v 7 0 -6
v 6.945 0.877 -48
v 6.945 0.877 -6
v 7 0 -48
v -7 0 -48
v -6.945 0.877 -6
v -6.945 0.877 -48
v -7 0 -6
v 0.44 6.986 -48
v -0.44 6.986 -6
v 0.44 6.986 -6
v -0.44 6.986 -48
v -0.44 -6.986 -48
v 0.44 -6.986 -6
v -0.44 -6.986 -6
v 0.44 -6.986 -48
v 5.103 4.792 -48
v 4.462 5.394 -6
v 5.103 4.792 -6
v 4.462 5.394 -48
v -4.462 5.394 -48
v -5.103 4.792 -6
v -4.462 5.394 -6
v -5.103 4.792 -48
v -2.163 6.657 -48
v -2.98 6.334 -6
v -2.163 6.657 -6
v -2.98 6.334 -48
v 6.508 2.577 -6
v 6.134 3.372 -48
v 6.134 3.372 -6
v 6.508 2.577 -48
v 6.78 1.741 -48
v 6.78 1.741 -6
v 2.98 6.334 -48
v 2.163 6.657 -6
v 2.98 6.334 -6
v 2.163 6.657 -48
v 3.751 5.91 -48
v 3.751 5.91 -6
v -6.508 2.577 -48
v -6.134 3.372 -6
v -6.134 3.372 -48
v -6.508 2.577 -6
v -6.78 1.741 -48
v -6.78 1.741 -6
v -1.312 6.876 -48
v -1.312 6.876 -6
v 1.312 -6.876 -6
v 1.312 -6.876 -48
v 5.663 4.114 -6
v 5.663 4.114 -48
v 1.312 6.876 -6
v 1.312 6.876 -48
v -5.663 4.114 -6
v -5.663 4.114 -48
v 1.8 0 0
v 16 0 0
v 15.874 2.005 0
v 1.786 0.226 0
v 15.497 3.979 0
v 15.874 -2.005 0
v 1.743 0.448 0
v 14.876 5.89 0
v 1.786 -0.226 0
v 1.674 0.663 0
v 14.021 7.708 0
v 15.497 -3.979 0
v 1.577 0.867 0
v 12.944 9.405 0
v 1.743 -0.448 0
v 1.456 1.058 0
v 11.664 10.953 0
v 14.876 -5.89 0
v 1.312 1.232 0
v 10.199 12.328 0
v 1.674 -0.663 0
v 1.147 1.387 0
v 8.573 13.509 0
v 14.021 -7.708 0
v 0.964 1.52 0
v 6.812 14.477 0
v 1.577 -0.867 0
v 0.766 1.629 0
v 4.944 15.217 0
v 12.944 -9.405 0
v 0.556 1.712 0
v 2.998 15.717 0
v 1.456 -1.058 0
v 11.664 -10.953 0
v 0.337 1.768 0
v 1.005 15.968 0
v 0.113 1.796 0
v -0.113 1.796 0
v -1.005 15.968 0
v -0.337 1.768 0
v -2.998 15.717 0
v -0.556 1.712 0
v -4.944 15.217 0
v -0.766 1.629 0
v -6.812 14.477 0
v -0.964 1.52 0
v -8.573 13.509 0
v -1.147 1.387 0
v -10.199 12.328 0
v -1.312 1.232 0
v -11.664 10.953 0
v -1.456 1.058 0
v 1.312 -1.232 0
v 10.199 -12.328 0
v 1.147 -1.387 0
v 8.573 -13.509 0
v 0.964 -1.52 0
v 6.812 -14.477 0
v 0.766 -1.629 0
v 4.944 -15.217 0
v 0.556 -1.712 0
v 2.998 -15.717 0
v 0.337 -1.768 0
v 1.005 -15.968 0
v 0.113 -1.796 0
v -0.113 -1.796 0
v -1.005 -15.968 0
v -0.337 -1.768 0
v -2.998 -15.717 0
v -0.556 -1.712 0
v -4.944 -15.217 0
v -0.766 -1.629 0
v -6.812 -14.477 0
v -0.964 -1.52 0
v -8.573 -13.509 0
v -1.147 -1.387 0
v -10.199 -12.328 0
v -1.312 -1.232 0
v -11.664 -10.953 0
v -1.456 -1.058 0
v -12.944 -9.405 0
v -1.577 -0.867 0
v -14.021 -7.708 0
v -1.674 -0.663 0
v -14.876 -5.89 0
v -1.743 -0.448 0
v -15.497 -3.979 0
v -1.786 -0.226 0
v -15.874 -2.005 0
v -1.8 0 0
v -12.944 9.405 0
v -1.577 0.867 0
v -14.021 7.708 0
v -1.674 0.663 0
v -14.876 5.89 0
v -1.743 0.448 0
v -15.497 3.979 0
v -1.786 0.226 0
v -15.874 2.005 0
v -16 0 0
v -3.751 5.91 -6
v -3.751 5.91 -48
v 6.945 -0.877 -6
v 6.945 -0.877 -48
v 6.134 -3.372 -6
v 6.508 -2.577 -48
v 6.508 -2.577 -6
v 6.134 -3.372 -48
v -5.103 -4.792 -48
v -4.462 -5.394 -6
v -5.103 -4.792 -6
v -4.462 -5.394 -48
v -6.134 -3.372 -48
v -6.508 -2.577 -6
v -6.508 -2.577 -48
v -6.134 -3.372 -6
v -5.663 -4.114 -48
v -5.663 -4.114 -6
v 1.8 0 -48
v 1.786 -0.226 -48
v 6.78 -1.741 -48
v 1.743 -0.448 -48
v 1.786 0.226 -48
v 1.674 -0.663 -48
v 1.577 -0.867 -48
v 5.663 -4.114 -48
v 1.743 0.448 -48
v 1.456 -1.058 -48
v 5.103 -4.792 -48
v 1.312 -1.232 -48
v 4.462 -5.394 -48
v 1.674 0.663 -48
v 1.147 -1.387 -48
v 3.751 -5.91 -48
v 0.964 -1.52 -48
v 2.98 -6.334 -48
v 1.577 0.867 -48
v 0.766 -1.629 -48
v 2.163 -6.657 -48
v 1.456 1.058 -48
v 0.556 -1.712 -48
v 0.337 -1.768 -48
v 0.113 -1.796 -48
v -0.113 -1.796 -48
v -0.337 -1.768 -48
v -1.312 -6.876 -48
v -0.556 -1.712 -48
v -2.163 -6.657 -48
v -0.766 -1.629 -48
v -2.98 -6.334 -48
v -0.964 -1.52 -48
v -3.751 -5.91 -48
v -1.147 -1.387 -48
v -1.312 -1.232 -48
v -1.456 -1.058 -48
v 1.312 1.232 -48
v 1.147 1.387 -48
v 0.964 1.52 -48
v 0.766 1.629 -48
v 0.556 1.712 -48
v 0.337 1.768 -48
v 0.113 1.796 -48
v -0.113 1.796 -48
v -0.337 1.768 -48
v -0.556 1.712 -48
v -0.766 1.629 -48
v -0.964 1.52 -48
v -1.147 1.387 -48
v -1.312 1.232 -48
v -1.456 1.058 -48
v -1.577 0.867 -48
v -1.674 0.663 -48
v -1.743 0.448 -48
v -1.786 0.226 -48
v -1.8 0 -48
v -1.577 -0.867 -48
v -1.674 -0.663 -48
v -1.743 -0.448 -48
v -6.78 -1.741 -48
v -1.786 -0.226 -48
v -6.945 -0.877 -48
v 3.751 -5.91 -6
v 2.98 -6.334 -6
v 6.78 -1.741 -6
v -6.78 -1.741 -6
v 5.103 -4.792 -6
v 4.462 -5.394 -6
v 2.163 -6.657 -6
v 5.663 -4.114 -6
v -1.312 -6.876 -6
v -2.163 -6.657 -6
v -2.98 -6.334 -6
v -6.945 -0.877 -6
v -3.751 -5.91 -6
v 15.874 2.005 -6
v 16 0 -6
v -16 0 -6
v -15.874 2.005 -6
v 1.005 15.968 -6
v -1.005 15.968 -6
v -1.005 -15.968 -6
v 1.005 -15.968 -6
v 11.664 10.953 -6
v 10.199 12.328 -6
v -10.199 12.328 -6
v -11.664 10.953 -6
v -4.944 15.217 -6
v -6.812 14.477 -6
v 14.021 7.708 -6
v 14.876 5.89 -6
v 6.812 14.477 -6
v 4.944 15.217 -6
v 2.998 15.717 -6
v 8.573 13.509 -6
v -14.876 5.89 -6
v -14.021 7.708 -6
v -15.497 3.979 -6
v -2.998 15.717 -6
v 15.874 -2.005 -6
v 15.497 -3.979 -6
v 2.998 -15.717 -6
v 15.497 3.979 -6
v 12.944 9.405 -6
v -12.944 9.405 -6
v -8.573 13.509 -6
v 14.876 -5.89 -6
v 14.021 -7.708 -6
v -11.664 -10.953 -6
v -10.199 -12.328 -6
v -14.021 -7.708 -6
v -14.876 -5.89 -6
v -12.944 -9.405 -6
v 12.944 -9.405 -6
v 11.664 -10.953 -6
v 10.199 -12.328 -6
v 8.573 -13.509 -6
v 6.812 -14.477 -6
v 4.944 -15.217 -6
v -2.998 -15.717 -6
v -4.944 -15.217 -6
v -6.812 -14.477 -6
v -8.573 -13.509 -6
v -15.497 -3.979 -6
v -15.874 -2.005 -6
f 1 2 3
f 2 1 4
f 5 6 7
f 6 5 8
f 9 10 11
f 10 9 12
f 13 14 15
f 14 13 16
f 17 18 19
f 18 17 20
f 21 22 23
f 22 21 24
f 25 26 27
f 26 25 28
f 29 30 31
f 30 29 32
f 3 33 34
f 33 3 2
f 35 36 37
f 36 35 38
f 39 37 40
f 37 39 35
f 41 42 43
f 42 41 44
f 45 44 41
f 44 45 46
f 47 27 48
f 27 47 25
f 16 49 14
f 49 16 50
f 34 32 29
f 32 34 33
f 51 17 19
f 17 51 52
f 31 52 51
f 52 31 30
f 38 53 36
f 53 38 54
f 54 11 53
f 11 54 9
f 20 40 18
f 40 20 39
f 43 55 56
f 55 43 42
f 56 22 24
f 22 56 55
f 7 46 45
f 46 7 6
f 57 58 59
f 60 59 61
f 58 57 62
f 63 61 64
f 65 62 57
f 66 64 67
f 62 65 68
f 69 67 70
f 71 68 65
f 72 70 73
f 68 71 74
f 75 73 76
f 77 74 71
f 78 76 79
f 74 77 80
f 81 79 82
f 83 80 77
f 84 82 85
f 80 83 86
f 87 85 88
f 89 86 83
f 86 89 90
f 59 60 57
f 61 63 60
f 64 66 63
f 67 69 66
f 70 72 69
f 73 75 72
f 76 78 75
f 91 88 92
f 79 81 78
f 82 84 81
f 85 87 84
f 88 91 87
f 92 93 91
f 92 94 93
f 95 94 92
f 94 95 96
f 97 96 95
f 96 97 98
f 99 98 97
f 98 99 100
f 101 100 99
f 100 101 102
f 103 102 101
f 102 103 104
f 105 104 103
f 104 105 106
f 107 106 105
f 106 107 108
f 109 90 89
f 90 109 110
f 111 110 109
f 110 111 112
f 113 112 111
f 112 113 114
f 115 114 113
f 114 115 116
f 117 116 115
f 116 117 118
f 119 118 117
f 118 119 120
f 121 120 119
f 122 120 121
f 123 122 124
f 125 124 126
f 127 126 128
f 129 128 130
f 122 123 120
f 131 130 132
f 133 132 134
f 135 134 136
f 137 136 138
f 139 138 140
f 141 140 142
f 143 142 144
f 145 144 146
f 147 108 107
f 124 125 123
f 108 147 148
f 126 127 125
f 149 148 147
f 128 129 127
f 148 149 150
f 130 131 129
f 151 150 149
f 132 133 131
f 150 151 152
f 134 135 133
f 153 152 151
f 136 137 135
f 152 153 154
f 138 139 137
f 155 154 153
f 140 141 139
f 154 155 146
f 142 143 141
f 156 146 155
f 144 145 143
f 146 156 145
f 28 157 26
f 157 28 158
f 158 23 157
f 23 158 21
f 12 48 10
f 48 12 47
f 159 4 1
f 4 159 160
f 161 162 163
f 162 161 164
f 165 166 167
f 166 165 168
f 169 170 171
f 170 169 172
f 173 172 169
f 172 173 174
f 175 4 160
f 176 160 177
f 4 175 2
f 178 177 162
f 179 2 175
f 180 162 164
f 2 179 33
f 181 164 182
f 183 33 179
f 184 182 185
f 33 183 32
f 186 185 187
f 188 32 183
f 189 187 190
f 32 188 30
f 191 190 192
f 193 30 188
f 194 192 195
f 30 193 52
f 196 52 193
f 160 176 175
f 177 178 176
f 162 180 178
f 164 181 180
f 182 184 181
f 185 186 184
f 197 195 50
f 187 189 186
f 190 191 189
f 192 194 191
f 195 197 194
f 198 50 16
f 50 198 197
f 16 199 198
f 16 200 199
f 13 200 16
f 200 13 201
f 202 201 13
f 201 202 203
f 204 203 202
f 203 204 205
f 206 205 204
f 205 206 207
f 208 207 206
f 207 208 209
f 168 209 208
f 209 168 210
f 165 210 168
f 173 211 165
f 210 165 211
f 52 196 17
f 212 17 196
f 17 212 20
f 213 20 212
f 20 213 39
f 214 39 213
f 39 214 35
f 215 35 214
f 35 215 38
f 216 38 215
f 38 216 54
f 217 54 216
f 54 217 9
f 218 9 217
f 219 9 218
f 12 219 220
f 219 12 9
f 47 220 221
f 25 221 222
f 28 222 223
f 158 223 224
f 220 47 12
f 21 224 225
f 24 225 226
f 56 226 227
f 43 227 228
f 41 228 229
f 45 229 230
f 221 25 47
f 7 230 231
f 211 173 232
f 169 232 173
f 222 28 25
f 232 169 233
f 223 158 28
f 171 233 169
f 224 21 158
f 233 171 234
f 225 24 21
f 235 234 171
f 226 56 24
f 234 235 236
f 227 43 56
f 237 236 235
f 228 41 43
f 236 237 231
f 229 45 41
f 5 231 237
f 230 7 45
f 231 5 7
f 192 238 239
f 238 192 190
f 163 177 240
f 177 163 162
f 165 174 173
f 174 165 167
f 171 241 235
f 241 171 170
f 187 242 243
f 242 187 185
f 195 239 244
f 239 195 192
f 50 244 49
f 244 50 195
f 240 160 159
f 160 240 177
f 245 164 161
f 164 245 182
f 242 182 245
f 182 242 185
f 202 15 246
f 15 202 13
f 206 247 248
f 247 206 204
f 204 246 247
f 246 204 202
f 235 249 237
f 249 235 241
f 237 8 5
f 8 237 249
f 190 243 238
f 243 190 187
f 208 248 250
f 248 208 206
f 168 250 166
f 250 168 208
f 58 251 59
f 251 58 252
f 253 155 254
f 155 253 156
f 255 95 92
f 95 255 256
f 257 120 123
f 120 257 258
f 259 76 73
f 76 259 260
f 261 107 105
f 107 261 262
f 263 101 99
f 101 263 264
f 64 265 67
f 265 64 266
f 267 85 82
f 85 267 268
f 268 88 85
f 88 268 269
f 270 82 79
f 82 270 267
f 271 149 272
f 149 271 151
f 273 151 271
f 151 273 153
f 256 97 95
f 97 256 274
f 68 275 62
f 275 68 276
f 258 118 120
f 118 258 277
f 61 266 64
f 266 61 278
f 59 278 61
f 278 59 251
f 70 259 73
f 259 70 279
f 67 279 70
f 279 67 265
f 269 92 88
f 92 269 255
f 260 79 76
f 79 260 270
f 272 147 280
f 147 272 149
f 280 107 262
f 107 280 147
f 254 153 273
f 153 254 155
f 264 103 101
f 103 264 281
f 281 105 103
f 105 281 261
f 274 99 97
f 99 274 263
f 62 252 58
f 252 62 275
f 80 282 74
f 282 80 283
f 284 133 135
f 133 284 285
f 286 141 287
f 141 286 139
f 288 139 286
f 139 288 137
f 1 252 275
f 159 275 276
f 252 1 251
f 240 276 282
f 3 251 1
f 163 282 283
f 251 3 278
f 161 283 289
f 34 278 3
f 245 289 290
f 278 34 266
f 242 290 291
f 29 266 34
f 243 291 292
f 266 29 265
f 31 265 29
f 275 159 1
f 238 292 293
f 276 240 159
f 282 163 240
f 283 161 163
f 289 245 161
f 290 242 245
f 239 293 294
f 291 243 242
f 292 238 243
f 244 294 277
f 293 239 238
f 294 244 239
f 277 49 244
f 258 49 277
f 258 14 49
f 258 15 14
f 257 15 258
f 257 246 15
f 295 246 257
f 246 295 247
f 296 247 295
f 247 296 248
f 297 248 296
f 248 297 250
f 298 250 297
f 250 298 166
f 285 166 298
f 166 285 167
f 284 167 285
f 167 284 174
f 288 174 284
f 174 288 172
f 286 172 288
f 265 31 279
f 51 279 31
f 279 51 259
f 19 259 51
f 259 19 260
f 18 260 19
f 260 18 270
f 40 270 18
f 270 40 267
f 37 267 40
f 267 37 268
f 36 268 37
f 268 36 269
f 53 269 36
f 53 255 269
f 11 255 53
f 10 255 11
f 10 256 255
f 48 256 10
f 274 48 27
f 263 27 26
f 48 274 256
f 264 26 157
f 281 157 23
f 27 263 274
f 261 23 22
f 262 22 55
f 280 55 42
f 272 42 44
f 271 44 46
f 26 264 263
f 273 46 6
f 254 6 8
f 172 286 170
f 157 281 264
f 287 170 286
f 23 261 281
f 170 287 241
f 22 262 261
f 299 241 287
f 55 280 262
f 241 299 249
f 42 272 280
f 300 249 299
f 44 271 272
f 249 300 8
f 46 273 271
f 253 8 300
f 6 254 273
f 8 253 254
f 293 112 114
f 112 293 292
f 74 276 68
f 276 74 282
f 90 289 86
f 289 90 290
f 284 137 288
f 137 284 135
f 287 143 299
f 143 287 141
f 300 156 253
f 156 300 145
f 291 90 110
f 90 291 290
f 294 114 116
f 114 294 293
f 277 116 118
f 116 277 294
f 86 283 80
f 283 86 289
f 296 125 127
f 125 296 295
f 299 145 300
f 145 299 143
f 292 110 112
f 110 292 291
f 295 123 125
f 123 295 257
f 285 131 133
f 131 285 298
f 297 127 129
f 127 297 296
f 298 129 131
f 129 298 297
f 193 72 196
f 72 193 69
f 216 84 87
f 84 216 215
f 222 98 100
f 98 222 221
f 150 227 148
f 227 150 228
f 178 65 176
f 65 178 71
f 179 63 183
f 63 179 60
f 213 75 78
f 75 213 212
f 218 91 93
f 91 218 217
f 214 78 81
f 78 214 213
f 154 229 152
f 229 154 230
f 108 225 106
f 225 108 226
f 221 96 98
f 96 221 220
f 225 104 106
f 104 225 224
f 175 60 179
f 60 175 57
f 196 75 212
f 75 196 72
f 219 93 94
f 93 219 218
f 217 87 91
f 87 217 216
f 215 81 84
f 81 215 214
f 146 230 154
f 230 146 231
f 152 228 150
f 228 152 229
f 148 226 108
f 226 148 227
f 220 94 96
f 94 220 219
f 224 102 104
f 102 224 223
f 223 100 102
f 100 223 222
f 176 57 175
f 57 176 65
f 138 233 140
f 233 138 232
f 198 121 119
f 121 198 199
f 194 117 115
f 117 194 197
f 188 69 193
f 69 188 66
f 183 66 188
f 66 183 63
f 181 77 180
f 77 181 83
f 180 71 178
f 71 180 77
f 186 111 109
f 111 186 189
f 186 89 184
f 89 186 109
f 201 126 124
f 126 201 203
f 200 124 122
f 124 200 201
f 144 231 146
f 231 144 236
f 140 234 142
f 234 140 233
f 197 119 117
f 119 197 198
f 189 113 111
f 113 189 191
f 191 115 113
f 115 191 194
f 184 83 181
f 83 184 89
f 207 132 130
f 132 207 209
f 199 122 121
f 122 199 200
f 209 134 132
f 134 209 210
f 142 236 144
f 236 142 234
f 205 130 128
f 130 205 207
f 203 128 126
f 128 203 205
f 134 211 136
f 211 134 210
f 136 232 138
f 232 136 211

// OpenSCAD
$fn = 50;


difference() {
	union() {
		translate(v = [0, 0, -48.0000000000]) {
			cylinder(h = 48, r = 7.0000000000);
		}
		translate(v = [0, 0, -6.0000000000]) {
			cylinder(h = 6, r = 16.0000000000);
		}
	}
	union() {
		#translate(v = [0, 0, -48]) {
			cylinder(h = 48, r = 1.8000000000);
		}
	}
}
